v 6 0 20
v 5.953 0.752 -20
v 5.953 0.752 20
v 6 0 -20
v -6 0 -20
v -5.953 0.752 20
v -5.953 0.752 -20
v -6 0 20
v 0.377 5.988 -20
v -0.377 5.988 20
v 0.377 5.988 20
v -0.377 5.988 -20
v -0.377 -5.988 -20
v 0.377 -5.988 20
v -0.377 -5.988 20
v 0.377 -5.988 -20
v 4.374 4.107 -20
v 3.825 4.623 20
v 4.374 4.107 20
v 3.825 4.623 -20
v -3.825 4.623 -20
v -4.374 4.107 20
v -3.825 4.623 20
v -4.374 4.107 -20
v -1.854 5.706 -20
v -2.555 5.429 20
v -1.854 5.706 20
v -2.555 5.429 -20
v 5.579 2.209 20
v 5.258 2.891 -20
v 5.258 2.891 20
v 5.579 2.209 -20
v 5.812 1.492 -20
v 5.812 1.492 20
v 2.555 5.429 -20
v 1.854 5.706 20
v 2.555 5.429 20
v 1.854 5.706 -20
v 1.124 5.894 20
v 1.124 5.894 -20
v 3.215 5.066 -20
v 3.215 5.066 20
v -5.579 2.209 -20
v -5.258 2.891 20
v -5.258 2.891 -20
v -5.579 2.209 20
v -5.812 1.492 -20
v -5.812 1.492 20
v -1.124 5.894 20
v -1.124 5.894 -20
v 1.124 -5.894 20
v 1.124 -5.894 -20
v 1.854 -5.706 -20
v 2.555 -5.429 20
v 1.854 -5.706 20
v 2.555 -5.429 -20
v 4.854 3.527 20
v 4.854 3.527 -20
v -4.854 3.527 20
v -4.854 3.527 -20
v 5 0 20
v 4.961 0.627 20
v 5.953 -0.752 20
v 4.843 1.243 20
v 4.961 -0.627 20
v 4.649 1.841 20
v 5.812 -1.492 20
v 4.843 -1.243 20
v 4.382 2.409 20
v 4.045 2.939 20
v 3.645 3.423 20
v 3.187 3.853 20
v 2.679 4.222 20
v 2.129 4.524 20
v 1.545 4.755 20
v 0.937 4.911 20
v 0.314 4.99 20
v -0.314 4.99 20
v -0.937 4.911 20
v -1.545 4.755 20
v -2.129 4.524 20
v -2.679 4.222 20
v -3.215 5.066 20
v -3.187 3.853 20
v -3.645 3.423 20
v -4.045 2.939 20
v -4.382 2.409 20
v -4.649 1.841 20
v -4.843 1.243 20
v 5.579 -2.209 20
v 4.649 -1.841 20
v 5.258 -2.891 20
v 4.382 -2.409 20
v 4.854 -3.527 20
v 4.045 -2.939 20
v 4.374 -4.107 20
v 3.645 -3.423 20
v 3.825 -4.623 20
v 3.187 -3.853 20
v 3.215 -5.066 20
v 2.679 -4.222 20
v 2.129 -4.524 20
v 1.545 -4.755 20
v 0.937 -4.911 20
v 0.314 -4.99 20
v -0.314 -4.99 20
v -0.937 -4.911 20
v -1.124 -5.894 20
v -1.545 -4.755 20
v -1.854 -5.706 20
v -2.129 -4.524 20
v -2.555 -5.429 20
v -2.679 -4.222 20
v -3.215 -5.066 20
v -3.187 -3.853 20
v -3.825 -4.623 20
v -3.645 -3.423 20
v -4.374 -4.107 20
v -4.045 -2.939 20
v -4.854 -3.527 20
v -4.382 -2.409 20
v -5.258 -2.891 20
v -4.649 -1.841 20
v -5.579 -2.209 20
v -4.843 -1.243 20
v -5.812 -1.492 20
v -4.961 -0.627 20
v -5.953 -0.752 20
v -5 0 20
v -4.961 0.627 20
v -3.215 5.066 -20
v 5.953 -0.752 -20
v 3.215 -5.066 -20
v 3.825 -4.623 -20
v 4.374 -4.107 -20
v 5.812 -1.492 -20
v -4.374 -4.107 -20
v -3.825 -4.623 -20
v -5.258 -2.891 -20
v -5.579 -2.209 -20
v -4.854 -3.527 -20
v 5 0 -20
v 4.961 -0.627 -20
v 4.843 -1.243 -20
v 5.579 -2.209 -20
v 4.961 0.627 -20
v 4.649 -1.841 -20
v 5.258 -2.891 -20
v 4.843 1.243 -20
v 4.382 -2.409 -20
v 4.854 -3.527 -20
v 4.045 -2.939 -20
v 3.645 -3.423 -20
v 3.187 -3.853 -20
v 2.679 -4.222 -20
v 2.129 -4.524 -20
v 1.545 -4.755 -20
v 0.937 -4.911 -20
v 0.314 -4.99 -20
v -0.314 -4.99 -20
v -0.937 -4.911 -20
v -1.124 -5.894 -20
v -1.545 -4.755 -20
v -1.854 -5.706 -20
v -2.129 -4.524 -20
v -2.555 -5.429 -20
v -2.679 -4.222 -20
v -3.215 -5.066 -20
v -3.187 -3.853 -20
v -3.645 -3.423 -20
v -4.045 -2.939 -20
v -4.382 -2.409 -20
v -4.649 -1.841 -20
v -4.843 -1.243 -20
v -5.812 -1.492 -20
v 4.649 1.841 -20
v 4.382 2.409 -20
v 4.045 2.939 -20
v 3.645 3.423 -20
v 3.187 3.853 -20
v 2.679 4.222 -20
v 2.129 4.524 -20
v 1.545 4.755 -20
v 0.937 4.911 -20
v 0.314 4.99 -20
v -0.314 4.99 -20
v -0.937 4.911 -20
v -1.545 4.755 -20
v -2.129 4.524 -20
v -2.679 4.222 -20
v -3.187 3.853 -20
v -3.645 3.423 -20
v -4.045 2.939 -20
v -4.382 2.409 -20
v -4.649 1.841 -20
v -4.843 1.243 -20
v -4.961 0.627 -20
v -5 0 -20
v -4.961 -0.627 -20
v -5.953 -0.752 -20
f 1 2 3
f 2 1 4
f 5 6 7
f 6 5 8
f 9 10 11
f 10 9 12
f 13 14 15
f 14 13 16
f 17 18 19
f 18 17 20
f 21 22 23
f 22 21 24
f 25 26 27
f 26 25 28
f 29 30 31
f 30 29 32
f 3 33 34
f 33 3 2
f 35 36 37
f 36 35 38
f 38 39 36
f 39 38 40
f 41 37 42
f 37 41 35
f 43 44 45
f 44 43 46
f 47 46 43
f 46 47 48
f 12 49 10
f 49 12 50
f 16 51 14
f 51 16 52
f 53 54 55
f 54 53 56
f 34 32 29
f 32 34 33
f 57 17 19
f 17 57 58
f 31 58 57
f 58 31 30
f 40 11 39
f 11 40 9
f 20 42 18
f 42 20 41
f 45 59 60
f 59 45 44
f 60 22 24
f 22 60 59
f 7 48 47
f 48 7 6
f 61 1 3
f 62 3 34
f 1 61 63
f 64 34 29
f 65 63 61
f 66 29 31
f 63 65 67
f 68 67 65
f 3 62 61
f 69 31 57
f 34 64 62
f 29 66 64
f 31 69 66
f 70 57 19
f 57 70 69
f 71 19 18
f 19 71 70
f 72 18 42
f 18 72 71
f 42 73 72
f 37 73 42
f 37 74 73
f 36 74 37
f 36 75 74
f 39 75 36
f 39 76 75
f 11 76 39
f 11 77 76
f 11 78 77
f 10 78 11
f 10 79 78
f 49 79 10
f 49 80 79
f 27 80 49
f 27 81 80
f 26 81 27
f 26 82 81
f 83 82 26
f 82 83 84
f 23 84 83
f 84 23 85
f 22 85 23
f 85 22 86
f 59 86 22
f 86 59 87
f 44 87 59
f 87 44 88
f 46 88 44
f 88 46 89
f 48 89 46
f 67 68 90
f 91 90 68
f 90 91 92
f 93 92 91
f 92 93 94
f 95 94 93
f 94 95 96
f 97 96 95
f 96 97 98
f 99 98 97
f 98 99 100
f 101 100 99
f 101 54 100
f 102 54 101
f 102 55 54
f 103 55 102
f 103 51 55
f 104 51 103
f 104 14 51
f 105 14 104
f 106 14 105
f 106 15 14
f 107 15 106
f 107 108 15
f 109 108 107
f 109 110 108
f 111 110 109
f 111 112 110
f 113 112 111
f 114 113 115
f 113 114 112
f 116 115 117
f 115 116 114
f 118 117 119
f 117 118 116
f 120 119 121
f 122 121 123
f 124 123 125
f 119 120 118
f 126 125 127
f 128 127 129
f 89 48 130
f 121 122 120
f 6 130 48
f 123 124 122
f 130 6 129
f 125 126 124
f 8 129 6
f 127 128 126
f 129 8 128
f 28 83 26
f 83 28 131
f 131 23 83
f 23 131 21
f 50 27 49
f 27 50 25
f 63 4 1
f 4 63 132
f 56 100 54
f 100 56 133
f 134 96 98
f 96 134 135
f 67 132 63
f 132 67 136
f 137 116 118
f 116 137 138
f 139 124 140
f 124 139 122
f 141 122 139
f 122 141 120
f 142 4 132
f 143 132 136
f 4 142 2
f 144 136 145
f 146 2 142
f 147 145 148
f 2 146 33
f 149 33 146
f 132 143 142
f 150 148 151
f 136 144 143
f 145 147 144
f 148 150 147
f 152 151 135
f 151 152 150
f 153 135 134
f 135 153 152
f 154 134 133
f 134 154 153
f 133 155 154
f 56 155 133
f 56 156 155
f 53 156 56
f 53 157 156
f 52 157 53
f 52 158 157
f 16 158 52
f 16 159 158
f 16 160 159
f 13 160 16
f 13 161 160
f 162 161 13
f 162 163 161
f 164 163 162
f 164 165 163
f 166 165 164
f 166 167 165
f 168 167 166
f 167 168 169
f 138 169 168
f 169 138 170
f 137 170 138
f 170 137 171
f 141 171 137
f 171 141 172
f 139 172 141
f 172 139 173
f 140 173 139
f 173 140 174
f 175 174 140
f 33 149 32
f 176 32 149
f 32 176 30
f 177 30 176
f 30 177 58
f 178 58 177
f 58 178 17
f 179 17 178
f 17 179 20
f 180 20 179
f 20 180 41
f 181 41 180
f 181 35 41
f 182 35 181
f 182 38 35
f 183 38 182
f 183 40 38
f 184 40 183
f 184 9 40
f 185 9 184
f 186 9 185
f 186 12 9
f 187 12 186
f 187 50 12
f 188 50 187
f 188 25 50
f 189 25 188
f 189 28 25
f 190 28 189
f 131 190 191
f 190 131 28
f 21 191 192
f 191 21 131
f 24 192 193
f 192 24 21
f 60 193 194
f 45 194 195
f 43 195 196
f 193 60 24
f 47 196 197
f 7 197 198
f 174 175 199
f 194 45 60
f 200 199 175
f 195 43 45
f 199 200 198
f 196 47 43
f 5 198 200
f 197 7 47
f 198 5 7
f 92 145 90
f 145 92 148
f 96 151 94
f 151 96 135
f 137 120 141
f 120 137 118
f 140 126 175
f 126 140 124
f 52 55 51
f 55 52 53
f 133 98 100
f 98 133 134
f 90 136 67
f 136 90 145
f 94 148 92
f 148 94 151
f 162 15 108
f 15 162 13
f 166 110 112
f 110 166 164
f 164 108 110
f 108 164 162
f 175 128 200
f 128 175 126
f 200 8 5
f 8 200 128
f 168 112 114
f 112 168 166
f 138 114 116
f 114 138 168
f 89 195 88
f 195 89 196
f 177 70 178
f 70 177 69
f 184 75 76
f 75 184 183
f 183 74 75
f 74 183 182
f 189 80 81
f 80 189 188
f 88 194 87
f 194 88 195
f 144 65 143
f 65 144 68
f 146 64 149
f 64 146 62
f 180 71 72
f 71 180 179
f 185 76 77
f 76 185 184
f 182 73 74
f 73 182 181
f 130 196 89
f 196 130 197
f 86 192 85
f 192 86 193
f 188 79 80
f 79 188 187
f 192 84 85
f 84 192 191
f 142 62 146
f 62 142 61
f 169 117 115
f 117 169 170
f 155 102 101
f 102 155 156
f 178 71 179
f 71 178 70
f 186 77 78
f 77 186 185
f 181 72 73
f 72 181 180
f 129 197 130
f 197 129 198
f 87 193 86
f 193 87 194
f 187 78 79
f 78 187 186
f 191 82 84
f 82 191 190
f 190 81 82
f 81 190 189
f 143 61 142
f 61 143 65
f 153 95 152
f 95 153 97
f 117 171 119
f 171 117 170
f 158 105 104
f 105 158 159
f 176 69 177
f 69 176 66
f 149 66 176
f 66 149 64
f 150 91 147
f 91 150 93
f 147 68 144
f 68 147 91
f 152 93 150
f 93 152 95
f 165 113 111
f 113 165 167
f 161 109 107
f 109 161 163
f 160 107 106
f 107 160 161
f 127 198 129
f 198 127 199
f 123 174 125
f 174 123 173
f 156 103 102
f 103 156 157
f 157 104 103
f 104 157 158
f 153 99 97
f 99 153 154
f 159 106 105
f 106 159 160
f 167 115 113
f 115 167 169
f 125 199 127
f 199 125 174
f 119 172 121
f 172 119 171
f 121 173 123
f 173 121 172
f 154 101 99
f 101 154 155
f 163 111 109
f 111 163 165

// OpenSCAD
$fn = 50;


difference() {
	union() {
		translate(v = [0, 0, -20.0000000000]) {
			cylinder(h = 40, r = 6.0000000000);
		}
	}
	union() {
		translate(v = [0, 0, -100.0000000000]) {
			cylinder(h = 200, r = 5);
		}
	}
}
